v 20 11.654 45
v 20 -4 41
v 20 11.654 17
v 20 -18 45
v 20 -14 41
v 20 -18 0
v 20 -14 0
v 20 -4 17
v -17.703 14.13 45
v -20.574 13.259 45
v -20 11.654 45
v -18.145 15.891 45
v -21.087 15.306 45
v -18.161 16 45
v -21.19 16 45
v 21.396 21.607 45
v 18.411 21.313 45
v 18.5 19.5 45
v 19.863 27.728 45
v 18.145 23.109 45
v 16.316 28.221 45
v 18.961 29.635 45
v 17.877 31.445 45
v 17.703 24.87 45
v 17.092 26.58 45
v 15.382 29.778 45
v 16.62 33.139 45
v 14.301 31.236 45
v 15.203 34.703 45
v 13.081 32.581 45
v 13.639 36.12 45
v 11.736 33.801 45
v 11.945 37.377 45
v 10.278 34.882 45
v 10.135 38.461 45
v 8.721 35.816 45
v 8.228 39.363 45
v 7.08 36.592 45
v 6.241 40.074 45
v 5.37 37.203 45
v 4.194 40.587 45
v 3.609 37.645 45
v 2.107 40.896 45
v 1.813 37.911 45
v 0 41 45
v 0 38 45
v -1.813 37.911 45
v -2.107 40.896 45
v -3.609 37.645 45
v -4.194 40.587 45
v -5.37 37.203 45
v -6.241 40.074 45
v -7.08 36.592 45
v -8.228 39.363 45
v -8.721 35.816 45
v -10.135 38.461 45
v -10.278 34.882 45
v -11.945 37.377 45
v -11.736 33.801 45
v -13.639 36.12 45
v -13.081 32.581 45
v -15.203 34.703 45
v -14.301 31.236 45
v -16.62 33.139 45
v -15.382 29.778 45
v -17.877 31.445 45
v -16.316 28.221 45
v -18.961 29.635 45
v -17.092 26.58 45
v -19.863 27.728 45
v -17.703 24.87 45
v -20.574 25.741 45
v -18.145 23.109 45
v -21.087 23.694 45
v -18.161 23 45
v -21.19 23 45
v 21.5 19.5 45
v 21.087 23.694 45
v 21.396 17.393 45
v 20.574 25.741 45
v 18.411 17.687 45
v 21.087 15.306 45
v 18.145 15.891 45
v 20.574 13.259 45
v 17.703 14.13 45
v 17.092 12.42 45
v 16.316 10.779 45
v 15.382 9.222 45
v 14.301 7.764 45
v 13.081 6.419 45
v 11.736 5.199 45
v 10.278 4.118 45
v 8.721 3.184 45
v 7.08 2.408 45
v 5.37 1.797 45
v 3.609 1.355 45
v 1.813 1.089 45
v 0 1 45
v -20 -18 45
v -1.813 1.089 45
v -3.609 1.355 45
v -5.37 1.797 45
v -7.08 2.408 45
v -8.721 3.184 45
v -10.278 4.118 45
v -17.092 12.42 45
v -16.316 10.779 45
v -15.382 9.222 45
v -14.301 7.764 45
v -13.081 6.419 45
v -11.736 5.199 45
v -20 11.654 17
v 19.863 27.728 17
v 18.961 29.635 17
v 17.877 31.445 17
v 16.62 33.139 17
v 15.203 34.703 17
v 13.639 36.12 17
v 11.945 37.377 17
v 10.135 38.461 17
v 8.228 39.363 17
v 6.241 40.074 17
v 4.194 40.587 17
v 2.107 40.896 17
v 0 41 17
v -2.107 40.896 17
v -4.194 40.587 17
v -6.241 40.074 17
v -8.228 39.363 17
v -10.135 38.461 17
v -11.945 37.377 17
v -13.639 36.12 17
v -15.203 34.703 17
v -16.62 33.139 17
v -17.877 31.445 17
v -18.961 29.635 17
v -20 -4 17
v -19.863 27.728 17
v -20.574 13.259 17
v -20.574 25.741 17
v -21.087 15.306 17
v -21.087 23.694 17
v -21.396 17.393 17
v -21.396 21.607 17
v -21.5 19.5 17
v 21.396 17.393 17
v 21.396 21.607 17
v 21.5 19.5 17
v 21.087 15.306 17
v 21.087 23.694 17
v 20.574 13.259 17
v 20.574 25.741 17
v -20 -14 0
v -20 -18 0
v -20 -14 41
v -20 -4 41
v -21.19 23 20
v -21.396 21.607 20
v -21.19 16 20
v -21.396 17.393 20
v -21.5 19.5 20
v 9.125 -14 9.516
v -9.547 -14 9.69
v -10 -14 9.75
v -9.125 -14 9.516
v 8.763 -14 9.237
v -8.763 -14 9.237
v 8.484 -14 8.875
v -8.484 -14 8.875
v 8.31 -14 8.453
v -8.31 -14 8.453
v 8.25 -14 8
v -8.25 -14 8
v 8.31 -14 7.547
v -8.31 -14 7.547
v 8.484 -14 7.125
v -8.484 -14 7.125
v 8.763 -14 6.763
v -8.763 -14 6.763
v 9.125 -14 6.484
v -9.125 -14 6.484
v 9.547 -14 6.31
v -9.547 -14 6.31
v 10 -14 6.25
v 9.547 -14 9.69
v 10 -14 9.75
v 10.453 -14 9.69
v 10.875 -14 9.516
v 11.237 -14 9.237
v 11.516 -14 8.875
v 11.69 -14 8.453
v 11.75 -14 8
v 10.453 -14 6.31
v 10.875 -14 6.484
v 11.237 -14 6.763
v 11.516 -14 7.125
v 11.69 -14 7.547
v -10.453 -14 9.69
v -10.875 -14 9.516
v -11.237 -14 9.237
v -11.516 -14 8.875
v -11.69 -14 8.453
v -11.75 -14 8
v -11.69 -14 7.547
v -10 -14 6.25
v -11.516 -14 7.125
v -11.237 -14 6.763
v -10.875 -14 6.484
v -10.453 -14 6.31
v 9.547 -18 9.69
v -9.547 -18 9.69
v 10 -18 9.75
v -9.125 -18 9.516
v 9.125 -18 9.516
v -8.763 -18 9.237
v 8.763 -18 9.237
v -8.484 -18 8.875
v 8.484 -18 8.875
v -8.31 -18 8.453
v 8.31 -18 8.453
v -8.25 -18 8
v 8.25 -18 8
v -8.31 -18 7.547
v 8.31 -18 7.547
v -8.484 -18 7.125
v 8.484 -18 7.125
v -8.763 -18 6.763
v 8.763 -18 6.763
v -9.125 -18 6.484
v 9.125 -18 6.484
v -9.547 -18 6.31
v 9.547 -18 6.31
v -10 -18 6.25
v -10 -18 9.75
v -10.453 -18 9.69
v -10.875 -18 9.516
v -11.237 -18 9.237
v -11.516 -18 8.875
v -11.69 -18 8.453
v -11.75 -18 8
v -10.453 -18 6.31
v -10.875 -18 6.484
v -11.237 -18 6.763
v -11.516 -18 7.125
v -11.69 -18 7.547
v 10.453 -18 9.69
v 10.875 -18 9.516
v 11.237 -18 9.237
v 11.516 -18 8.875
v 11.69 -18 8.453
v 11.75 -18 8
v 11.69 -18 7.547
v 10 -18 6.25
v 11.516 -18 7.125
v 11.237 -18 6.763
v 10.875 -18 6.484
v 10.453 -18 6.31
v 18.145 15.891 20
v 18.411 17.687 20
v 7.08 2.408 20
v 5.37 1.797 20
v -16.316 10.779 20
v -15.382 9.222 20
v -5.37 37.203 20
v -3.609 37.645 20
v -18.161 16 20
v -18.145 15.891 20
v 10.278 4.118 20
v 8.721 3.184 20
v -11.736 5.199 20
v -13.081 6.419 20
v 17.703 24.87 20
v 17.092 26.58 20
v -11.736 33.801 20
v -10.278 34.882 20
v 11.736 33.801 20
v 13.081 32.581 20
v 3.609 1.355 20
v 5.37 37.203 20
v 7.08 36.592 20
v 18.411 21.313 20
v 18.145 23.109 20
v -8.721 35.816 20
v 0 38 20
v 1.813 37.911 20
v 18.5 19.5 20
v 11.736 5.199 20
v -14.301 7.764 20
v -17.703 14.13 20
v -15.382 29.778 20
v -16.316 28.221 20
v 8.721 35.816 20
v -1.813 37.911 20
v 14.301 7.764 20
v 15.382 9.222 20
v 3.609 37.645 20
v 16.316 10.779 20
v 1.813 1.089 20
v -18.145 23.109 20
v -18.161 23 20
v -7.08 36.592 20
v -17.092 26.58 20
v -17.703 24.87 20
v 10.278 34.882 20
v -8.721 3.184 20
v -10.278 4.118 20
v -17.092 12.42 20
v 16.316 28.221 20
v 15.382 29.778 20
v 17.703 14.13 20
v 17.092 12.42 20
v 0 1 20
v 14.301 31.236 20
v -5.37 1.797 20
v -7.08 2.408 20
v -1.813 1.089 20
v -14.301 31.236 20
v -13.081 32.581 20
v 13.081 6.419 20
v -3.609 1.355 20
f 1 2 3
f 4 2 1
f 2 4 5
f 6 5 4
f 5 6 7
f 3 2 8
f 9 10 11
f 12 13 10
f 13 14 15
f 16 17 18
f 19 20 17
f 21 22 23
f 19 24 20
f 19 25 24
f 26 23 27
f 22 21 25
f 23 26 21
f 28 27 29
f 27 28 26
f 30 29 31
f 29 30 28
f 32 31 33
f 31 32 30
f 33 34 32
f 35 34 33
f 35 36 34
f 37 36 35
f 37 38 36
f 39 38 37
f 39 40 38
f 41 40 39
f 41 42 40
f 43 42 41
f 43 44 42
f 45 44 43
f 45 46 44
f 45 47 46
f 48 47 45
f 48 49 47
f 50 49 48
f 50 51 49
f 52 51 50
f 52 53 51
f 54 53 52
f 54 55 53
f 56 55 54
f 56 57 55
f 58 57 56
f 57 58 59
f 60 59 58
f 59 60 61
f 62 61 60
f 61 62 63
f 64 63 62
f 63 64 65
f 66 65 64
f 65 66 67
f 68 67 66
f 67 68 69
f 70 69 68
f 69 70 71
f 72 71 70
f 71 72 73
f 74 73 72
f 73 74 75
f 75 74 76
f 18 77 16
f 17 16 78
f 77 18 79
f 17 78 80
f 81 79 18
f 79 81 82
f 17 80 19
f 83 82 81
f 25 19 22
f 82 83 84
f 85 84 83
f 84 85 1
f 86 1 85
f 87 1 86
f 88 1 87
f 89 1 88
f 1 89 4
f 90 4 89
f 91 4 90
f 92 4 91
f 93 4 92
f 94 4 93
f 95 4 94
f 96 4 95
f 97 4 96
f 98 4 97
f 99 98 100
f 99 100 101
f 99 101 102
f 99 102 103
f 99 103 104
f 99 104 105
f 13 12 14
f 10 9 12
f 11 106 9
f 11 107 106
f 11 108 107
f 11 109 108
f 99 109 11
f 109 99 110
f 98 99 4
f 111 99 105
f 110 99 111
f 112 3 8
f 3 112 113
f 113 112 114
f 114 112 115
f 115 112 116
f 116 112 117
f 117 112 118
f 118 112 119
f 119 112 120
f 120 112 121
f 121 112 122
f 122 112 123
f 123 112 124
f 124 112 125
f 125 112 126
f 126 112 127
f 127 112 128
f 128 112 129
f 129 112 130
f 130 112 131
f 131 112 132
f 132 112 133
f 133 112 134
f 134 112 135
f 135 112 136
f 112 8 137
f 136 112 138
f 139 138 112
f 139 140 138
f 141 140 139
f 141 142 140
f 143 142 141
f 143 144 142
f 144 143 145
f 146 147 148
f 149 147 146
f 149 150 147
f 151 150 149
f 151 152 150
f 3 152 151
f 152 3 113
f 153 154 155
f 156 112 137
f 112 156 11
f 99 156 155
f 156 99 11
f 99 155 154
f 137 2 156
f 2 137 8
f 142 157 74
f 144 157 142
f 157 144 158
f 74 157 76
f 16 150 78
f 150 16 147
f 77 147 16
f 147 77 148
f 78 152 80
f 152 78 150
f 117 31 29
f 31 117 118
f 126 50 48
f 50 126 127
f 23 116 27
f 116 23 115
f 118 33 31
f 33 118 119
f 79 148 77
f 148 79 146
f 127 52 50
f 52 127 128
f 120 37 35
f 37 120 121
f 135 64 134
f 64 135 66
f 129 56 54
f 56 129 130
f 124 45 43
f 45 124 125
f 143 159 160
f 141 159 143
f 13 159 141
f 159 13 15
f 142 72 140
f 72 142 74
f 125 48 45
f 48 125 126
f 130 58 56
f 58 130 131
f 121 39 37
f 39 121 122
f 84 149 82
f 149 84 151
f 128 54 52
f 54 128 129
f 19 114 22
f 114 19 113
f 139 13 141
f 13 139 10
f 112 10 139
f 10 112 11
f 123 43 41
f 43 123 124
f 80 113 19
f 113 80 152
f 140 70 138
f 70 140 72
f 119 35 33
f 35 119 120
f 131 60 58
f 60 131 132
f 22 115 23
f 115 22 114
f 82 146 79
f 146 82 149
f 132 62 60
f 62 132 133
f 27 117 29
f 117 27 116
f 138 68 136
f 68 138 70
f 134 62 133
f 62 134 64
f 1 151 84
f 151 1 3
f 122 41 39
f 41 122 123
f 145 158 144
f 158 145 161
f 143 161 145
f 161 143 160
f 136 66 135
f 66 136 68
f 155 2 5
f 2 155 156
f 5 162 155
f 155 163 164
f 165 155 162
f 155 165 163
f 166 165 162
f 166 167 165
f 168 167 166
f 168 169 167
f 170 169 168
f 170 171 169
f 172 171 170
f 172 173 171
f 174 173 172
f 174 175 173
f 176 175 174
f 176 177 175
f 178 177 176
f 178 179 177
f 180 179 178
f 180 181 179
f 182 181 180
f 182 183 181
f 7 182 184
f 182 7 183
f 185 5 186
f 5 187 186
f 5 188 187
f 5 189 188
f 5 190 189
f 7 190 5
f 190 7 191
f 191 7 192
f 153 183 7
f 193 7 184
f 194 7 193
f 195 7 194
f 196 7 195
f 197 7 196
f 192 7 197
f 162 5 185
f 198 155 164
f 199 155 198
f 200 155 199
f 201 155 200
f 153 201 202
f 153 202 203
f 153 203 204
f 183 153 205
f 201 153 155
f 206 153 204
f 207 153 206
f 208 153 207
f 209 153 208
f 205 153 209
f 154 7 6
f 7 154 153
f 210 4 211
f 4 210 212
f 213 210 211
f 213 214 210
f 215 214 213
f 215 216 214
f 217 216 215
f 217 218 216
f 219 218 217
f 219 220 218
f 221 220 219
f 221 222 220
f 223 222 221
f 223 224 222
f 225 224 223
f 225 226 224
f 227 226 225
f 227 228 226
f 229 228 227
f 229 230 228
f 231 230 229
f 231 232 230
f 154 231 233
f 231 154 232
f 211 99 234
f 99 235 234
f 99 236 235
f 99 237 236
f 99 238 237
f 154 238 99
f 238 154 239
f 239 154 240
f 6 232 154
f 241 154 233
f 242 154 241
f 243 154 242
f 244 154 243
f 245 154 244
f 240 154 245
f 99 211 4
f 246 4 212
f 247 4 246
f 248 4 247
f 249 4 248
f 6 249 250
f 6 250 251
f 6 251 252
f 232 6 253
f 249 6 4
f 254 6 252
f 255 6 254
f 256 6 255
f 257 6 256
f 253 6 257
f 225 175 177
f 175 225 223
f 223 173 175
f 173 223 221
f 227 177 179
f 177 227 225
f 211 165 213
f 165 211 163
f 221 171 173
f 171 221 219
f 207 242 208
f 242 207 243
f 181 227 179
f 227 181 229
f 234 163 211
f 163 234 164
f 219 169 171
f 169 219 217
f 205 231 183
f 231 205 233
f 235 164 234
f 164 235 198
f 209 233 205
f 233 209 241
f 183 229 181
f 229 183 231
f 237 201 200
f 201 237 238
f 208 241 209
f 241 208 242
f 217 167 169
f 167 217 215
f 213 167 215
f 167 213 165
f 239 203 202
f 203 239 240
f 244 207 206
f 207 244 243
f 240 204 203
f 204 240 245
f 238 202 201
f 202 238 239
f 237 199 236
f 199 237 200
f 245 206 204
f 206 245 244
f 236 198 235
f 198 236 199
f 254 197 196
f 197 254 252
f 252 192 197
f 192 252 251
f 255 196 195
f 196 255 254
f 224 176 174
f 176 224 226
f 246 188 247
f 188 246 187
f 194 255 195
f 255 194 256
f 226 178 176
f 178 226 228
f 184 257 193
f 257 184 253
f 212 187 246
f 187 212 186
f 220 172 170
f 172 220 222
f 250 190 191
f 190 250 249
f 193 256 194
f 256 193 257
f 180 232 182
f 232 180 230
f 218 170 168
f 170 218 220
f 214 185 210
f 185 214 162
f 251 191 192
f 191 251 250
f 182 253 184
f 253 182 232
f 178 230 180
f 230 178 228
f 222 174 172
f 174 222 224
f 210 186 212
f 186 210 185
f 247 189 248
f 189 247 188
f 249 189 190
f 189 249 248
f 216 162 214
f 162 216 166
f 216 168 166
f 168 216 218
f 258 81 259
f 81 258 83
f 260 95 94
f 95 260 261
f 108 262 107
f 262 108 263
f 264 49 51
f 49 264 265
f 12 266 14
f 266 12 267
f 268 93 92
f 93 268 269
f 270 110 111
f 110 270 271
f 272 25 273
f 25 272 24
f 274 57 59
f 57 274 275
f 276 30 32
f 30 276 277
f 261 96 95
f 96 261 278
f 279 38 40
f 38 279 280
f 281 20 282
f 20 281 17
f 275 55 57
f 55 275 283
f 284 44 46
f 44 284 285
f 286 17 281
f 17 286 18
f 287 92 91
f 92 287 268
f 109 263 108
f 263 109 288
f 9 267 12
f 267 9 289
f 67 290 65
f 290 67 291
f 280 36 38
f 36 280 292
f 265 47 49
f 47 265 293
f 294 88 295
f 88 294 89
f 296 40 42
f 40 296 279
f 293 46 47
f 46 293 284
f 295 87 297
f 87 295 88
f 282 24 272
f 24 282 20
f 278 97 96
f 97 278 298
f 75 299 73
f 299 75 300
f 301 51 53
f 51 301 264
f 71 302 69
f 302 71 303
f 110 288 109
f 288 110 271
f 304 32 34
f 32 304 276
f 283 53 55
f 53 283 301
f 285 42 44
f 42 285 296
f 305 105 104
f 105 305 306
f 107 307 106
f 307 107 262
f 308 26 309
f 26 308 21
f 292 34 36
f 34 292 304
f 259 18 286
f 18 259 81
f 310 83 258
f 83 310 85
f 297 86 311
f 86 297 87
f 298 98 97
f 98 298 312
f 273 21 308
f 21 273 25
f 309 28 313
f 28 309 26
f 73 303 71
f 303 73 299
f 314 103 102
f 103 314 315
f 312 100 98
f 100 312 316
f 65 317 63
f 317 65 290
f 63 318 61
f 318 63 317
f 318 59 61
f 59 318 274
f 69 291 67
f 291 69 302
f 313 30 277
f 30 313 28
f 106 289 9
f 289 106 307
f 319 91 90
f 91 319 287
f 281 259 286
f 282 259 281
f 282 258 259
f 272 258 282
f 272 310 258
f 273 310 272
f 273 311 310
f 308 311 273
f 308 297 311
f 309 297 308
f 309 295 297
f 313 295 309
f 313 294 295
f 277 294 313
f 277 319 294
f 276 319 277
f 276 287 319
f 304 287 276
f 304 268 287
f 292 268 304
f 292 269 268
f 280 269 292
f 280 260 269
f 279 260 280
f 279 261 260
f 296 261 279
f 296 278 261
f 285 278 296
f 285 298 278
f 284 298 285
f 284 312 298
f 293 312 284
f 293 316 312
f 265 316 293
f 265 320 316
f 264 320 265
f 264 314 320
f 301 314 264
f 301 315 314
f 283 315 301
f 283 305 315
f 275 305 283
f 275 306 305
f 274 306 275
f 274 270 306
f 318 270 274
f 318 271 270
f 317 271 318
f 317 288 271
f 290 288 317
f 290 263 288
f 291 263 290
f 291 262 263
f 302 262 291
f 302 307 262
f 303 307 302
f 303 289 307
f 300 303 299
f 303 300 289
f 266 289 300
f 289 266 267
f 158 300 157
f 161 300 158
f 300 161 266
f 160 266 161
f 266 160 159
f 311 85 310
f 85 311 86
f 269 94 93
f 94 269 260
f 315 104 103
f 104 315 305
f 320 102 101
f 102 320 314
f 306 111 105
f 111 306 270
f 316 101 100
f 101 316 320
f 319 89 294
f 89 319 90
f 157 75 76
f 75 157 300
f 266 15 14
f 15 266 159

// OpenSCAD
// ===== Parameters =====
magnet_d = 35;
magnet_h = 25;
diameter_tolerance = 2; // extra safety tolerance

cyl_d = magnet_d + diameter_tolerance; // 37 mm
wall = 3;
slot_w = 7;

plate_w = 40;
plate_h = 45;           // Z-height of the top of the hook geometry
plate_t = 4;

hook_depth = 10;        // wood thickness
hook_drop = 45;         // drop length of the outer plate

screw_d = 3.5;          // wood screw
screw_spacing = 20;

overlap = 2;            // overlap between cylinder and plate

// ===== Derived =====
outer_d = cyl_d + wall * 2;
outer_h = magnet_h + 3; // Magnet height + floor thickness

// Z-alignment
// User Refinement 1: "Outside plate should be brought up to be flush with the top of the hook bridge."
// Let's define the absolute top of the model as `plate_h`.
// The hook bridge sits at the very top.
total_top_z = plate_h; 

// The magnet cup hangs from the "inner" side.
// Previous logic: Cup was aligned to the top.
// Let's keep the cup top flush with the bridge top, or slightly below? 
// "Move cylinder up so the top is flush with the top of the hook" (from prev request).
// So Cup Top = total_top_z.
cyl_z_floor = total_top_z - outer_h;

// Y-alignment
// Inner Plate Front Face at Y=0.
// Cylinder Center Y is offset to create overlap.
cyl_center_y = (outer_d / 2) - overlap;

difference() {
    union() {
        // --- Magnet Assembly ---
        
        // Magnet cup
        translate([0, cyl_center_y, cyl_z_floor])
            cylinder(d=outer_d, h=outer_h, $fn=64);

        // Mounting plate (Inner)
        // Extends from cup bottom to top.
        translate([-plate_w/2, -plate_t, cyl_z_floor])
            cube([plate_w, plate_t, outer_h]);

        // Refinement 3: Reinforcement
        // "Space between inside plate and cylinder... filled up to the beginning of the notch"
        // Fill the corner between the flat plate (y=0) and the cylinder.
        // We'll use a hull of the plate's back face and a slice of the cylinder, or just a block intersecting.
        // Simplest robust way: Hull the plate rectangle with the cylinder at the same Z, but restricted width?
        // No, that changes the shape too much.
        // Let's just add a block that connects them and let the cylinder shape dominate?
        // Actually, a simple cube bridging -plate_t to cyl_center_y, but restricted in X to plate_w.
        intersection() {
             translate([-plate_w/2, -plate_t, cyl_z_floor])
                cube([plate_w, cyl_center_y + outer_d/2, outer_h]); // Big block
             
             // Intersect with a shape that fills the gap but respects the cylinder curve?
             // Actually, just Hulling the plate and the Cylinder is the cleanest "fill".
             // But we want to preserve the cylinder's "roundness" on the far side?
             // The user specifically talked about the space "between inside plate and cylinder".
             // This implies the "air gap" near the corners of the plate.
             // Let's hull the plate with a rectangle inside the cylinder.
             hull() {
                 translate([-plate_w/2, -plate_t, cyl_z_floor])
                    cube([plate_w, plate_t/2, outer_h]); // The plate interface
                 translate([-plate_w/2, cyl_center_y, cyl_z_floor])
                    cube([plate_w, 0.1, outer_h]); // A plane at the center
             }
        }

        // --- Hook Assembly ---
        
        // Hook Bridge (Top lip)
        // Spans the gap (hook_depth).
        // Y: From -plate_t (Inner Back) to -plate_t - hook_depth (Outer Front).
        // Z: Top aligned with total_top_z. Thickness plate_t.
        translate([-plate_w/2, -plate_t - hook_depth, total_top_z - plate_t])
            cube([plate_w, hook_depth, plate_t]);

        // Hook Vertical Drop (Outer Plate)
        // Refinement 1: "Outside plate should be brought up to be flush with the top of the hook bridge."
        // Position X: -plate_w/2
        // Position Y: -plate_t - hook_depth - plate_t
        // Position Z: Top at total_top_z. Height = hook_drop.
        // Wait, if height is hook_drop, does it extend low enough?
        // User wants "flush with top".
        // Let's assume hook_drop defines the total length of this plate.
        translate([-plate_w/2, -plate_t - hook_depth - plate_t, total_top_z - hook_drop])
            cube([plate_w, plate_t, hook_drop]);
    }

    // --- Subtractions ---

    // Magnet cavity
    translate([0, cyl_center_y, cyl_z_floor + 3])
        cylinder(d=cyl_d, h=magnet_h + 10, $fn=64);

    // Wire slot
    // Cut through the reinforcement we just added.
    translate([-outer_d, cyl_center_y - slot_w/2, cyl_z_floor + 3])
        cube([outer_d, slot_w, magnet_h + 20]);

    // Screw holes (Outer Plate)
    // Refinement 2: "moved down, at least below the level of the bottom of the inside plate"
    // Bottom of inside plate is `cyl_z_floor`.
    // So Hole Z < cyl_z_floor.
    // cyl_z_floor = 45 - 28 = 17.
    // Holes at Z=10 would be good.
    
    hole_y_start = -plate_t - hook_depth - plate_t - 5;
    hole_len = plate_t + 10;
    
    hole_z = 8; // Safely below 17
    
    for (x = [-screw_spacing/2, screw_spacing/2]) {
        translate([x, hole_y_start, hole_z])
            rotate([-90,0,0])
                cylinder(d=screw_d, h=hole_len, $fn=24);
    }
}
